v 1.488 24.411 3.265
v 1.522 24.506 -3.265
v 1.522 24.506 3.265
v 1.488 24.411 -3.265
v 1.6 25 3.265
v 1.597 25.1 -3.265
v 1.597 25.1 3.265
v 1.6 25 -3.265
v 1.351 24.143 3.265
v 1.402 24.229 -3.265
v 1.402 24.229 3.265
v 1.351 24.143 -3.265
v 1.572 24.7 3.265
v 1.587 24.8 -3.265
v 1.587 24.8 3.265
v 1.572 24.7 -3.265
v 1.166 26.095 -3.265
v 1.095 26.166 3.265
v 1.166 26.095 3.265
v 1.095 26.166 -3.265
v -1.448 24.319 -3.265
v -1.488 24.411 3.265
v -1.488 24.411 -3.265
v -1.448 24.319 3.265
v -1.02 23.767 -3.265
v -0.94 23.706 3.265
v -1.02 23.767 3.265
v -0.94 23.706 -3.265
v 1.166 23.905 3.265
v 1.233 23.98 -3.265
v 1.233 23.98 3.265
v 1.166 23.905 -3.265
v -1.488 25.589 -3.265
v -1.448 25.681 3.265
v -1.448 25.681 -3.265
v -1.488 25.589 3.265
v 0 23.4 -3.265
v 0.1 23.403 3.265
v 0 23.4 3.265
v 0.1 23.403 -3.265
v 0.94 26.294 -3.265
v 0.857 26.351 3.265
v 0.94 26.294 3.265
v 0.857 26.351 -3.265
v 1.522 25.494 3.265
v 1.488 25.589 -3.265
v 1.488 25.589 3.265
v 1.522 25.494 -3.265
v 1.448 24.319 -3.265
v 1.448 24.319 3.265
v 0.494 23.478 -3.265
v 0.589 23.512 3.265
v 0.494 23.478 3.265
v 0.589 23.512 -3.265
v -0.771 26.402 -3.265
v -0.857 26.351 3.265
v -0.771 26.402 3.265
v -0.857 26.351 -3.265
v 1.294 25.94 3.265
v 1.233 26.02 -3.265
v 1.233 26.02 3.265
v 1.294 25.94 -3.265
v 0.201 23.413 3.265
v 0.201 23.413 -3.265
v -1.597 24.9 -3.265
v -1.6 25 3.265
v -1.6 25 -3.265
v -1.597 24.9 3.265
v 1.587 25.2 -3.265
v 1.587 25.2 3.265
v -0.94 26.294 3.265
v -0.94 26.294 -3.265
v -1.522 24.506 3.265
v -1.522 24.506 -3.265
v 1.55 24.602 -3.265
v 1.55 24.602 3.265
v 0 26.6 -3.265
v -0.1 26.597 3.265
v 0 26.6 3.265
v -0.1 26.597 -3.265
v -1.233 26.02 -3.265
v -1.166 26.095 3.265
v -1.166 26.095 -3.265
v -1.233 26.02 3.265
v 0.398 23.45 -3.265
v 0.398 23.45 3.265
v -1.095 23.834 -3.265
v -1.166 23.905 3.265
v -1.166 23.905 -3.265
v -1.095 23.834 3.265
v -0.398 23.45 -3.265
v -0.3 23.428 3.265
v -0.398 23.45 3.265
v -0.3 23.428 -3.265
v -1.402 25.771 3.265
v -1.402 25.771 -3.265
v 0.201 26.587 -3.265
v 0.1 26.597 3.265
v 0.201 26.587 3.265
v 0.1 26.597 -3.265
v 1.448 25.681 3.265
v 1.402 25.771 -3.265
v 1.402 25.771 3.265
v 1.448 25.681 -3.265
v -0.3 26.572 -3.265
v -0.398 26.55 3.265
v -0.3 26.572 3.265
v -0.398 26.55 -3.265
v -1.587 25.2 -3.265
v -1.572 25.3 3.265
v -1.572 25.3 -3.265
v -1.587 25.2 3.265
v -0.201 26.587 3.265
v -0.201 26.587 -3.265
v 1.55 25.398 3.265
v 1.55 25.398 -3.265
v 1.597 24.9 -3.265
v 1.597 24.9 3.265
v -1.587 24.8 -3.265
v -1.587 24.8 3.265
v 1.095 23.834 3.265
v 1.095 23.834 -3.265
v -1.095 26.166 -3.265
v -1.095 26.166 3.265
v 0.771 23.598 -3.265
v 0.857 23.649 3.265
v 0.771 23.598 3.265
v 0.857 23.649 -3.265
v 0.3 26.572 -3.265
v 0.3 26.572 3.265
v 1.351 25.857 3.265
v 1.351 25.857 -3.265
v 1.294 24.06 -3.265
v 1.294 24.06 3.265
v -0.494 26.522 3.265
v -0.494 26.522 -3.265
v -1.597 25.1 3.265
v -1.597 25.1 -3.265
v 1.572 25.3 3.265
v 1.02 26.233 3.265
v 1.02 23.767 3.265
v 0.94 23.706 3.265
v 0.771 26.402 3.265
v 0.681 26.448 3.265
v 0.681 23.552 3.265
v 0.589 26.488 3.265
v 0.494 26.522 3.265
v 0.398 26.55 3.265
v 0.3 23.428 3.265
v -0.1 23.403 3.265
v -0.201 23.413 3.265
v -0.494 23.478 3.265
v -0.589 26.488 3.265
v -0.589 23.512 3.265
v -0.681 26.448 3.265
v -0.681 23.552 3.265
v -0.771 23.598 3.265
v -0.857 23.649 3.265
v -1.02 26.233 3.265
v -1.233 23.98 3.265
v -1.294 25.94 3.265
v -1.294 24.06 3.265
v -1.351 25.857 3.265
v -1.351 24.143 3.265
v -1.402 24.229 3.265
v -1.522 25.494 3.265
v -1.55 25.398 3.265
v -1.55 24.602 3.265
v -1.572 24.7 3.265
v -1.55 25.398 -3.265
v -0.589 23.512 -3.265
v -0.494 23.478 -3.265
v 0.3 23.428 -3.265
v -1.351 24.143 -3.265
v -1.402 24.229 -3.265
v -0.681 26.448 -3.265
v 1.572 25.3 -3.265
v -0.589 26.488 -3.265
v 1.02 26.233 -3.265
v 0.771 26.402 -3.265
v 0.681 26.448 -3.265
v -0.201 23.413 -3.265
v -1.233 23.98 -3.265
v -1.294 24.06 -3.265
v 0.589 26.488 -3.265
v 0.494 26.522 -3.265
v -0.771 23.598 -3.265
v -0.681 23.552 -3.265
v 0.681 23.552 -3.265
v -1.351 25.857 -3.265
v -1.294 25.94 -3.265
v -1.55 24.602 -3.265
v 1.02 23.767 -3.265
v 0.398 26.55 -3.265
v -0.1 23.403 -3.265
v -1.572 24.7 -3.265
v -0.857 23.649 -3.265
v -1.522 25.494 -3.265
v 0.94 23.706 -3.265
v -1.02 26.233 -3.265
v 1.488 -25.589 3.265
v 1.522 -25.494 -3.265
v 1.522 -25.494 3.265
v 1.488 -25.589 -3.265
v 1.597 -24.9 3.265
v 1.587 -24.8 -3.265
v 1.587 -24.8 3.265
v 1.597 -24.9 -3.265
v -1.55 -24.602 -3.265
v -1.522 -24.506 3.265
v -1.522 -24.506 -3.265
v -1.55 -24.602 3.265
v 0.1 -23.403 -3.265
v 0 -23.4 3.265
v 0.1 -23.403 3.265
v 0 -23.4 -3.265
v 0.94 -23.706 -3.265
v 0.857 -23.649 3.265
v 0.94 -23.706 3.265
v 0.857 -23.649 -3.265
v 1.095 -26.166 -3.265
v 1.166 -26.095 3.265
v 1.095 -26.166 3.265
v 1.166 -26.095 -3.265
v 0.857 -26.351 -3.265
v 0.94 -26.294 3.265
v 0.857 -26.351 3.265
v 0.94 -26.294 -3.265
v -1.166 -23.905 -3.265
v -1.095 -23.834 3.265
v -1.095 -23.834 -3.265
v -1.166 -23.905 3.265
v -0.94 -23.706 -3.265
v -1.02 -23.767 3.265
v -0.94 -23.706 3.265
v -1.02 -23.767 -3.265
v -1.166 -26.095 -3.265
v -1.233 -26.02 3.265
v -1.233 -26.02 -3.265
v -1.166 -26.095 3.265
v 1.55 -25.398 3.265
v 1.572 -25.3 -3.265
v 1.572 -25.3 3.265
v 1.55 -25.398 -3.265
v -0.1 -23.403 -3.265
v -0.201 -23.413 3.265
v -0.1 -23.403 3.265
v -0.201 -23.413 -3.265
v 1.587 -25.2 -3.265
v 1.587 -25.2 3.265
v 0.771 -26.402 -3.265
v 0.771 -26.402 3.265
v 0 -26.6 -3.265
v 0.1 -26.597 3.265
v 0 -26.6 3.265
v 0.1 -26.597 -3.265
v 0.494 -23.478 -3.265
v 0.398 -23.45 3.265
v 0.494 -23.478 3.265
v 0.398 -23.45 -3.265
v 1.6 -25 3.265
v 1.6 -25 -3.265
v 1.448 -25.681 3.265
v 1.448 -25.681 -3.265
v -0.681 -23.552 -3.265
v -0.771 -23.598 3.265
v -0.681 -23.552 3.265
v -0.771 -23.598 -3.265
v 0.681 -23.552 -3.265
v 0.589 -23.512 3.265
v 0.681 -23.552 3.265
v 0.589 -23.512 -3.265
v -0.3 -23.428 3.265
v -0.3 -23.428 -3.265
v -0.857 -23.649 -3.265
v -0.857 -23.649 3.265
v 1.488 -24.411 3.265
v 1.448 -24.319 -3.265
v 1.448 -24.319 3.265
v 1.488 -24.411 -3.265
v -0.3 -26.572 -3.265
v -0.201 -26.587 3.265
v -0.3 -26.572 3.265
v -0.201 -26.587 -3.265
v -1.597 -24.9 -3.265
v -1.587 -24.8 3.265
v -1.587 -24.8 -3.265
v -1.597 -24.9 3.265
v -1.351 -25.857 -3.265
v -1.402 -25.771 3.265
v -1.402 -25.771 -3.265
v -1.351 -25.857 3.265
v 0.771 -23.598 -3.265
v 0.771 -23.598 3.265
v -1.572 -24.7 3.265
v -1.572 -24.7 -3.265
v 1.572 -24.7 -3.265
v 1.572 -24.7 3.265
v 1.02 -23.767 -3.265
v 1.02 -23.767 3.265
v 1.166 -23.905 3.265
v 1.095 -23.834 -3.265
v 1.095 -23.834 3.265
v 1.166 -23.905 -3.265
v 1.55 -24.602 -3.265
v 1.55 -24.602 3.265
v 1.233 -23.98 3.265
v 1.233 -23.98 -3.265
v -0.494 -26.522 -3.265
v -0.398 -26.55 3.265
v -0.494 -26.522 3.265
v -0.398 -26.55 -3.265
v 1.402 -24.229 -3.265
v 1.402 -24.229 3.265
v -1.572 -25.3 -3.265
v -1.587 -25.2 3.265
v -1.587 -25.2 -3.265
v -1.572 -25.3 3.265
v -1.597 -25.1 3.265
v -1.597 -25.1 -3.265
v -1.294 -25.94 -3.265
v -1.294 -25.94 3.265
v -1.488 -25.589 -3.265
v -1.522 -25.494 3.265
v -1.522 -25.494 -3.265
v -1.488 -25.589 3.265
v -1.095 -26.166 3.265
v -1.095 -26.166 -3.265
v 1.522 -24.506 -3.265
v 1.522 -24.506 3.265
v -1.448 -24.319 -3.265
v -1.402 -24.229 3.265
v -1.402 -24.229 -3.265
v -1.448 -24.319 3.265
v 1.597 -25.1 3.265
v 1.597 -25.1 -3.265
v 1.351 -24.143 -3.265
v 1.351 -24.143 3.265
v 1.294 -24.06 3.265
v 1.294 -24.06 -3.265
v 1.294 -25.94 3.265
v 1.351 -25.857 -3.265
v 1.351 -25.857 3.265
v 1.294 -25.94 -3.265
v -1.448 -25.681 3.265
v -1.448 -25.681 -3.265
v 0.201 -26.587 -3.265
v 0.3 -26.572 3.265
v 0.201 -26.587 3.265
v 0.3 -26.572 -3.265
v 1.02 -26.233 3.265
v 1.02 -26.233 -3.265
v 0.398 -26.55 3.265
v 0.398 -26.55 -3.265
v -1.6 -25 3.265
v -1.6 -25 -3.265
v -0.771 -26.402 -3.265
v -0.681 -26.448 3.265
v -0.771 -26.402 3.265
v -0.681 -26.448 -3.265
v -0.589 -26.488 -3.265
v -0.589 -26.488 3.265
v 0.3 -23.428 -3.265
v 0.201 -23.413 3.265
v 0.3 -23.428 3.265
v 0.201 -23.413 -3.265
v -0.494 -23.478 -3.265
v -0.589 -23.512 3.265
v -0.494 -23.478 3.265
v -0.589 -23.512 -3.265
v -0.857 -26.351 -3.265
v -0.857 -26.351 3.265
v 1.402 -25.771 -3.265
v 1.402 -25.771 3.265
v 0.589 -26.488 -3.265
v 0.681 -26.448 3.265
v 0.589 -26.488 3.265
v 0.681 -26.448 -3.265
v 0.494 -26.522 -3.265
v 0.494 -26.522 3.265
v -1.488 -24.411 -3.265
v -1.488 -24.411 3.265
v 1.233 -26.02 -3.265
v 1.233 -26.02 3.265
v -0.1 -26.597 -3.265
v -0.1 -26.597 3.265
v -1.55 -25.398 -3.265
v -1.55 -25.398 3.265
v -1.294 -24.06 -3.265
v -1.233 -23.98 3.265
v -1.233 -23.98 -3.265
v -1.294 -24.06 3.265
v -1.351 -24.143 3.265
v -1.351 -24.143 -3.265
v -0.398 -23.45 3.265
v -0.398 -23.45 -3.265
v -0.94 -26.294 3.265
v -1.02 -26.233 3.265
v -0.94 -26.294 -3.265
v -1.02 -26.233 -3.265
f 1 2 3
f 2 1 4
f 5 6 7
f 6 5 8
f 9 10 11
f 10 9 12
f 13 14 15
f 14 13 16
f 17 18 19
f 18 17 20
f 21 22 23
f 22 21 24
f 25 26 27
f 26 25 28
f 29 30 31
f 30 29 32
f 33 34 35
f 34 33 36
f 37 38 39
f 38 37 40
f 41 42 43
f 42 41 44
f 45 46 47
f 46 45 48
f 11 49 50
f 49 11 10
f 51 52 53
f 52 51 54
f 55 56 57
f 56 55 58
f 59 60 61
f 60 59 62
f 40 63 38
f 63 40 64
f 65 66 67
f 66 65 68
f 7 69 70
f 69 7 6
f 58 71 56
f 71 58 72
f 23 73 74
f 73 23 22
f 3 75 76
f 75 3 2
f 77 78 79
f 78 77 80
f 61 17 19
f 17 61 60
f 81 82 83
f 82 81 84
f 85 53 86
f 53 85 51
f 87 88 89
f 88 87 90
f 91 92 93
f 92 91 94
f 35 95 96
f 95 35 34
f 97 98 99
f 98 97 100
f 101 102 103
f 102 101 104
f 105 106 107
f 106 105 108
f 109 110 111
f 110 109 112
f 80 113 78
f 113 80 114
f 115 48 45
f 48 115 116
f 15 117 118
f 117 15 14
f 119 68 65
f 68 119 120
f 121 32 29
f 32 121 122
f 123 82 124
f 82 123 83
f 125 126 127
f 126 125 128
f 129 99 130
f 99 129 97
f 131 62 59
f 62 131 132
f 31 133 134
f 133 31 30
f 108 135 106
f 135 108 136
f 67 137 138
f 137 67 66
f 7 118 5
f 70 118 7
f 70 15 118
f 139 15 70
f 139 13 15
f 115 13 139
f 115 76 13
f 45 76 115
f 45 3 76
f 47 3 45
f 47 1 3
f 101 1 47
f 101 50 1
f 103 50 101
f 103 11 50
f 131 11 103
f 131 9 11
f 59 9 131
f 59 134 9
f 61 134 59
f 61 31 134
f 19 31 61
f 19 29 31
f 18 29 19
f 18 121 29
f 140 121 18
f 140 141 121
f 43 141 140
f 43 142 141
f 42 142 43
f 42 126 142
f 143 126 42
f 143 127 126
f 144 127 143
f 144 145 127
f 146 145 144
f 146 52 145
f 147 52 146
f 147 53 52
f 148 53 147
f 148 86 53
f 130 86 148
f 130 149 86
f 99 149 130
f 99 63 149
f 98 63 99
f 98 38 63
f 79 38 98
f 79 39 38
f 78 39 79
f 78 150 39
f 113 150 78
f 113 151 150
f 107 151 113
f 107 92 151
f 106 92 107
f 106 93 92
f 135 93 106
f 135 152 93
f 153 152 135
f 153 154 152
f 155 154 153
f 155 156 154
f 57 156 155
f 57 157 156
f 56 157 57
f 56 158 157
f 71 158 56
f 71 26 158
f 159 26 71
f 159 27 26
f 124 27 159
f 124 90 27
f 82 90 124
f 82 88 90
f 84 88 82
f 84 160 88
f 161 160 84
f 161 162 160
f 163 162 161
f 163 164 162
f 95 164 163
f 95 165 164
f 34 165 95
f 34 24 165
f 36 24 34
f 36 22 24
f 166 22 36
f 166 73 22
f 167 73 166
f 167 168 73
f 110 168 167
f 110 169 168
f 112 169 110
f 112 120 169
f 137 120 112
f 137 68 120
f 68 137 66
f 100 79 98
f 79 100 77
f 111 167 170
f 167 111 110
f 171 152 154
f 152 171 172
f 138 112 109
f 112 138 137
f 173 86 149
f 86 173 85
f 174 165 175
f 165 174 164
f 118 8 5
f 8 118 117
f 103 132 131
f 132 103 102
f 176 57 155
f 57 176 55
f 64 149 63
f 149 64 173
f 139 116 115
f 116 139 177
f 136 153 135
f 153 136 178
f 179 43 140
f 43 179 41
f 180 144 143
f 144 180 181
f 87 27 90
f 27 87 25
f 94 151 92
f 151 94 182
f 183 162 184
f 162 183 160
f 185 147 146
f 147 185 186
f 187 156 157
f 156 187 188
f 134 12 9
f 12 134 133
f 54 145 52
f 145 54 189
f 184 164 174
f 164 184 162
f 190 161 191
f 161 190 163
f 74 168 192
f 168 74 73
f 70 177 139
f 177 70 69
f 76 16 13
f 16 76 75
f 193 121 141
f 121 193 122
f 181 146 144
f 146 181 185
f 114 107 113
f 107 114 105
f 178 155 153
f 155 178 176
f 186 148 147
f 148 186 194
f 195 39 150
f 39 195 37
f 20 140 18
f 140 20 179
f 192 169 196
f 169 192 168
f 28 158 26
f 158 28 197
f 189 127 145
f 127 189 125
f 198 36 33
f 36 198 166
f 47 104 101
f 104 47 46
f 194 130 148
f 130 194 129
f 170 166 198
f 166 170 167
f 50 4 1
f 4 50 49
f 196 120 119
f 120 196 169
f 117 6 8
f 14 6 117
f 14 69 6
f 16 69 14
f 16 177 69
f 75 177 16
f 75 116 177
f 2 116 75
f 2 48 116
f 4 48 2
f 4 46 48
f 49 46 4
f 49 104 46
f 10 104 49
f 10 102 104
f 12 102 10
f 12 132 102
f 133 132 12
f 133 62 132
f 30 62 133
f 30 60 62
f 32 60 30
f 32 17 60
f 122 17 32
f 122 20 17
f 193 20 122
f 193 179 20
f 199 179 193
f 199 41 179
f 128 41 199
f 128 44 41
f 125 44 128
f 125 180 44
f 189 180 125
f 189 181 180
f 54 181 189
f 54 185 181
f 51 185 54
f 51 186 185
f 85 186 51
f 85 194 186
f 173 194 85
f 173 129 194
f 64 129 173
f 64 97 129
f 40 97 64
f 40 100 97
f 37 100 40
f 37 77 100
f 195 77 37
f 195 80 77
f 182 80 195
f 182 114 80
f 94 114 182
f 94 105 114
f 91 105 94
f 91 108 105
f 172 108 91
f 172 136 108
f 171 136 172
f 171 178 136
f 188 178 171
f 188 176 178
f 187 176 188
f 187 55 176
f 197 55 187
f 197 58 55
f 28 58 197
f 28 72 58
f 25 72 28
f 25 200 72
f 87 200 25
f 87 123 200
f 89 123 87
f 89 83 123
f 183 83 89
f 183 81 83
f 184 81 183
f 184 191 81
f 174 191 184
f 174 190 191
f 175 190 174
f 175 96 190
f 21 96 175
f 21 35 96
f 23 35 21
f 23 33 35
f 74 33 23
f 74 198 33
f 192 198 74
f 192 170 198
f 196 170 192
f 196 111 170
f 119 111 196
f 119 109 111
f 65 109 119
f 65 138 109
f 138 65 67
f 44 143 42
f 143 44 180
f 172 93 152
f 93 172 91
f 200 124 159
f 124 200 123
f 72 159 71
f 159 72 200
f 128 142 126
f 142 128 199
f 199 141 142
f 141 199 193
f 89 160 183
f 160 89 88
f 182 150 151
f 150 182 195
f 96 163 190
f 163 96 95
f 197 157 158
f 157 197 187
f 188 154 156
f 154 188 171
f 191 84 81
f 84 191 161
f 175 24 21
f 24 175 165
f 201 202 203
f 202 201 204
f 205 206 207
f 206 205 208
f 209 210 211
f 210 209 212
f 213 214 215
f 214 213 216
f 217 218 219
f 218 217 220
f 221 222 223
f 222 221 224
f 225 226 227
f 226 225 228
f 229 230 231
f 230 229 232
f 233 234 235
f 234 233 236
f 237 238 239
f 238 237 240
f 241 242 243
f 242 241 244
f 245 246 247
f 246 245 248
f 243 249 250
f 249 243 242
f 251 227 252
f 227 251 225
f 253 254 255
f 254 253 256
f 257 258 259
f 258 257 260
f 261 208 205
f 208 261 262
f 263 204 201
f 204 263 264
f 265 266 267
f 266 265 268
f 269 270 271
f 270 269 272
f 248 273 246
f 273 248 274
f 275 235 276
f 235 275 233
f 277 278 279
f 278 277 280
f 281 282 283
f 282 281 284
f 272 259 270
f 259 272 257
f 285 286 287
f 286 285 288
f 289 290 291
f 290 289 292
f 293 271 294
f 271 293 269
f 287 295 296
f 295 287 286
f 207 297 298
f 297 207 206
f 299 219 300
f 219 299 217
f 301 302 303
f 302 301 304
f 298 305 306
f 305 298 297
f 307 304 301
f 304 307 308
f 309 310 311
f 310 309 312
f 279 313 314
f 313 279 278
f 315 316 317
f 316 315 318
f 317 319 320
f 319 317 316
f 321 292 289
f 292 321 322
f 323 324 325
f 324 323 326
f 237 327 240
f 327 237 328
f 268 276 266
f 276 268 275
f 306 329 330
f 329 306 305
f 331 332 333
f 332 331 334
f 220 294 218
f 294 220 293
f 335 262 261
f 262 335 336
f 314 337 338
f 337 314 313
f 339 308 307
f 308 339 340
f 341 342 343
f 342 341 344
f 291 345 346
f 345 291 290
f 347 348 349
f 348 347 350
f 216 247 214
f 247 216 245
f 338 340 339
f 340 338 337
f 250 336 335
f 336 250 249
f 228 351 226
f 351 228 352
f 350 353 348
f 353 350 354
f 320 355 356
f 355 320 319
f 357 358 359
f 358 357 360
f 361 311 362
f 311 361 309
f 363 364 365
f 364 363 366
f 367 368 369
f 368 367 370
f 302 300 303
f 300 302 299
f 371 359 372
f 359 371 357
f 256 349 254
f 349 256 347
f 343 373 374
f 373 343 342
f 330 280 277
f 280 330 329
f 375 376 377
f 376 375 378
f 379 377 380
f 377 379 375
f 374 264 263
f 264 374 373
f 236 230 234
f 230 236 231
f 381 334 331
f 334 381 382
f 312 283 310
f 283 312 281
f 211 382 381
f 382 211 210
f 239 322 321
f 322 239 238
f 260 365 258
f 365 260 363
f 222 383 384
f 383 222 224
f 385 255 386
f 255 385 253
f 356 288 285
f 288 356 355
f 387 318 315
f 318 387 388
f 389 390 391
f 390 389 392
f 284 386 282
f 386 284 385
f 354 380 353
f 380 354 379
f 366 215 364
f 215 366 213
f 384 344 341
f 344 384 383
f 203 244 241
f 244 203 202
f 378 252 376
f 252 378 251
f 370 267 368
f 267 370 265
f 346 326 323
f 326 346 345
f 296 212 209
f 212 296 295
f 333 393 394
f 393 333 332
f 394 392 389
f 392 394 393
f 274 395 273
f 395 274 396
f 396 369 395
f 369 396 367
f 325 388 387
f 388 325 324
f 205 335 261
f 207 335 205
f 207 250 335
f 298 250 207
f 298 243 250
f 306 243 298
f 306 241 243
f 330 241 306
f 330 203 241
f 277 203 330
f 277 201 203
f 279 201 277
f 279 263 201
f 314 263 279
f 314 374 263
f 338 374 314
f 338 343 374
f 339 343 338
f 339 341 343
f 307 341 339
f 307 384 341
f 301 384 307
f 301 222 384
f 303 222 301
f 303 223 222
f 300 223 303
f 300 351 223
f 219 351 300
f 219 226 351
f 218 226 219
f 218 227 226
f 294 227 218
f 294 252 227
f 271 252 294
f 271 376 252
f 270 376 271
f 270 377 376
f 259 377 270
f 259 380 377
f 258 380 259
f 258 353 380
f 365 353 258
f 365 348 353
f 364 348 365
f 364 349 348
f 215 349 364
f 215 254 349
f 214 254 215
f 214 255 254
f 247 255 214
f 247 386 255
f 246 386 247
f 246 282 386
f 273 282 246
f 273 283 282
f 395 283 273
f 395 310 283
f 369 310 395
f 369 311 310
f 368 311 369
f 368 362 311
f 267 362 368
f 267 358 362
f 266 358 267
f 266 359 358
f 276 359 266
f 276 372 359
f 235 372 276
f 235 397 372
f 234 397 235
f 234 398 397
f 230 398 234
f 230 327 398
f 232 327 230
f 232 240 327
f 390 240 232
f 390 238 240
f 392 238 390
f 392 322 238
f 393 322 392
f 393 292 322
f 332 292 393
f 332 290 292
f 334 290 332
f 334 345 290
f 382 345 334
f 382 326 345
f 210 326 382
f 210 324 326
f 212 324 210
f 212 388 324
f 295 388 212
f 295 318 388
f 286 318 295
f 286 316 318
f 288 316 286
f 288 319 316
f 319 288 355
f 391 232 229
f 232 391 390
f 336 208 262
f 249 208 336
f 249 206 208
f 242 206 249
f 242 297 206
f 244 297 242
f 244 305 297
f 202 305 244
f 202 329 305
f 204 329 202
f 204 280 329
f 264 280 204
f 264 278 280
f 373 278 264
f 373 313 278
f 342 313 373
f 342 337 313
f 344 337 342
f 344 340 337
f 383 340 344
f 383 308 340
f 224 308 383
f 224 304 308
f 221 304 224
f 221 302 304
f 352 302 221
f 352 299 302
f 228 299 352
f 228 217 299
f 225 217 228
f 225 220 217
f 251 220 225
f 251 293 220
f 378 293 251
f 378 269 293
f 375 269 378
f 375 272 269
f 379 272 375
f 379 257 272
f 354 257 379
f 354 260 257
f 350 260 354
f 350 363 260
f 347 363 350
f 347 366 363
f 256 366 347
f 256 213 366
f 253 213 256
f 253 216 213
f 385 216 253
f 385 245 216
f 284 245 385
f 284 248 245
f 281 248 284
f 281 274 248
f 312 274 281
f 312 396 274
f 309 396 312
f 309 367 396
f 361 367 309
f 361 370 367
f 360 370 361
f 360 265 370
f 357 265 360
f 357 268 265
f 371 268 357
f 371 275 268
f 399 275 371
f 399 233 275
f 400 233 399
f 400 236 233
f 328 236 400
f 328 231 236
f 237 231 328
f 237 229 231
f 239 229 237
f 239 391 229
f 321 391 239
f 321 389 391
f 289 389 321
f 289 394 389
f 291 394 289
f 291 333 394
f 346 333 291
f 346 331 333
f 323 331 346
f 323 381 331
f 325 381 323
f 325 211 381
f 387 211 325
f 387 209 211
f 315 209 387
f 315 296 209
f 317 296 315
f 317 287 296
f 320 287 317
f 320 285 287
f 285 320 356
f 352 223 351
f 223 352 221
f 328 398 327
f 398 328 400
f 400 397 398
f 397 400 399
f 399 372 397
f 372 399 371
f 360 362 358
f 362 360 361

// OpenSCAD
$fn = 100;
union()
{
  translate(v = [0, 25, 0])
  {
    cylinder(h = 6.53, r = 1.6, center = true);
  }
  translate(v = [0, -25, 0])
  {
    cylinder(h = 6.53, r = 1.6, center = true);
  }
}
